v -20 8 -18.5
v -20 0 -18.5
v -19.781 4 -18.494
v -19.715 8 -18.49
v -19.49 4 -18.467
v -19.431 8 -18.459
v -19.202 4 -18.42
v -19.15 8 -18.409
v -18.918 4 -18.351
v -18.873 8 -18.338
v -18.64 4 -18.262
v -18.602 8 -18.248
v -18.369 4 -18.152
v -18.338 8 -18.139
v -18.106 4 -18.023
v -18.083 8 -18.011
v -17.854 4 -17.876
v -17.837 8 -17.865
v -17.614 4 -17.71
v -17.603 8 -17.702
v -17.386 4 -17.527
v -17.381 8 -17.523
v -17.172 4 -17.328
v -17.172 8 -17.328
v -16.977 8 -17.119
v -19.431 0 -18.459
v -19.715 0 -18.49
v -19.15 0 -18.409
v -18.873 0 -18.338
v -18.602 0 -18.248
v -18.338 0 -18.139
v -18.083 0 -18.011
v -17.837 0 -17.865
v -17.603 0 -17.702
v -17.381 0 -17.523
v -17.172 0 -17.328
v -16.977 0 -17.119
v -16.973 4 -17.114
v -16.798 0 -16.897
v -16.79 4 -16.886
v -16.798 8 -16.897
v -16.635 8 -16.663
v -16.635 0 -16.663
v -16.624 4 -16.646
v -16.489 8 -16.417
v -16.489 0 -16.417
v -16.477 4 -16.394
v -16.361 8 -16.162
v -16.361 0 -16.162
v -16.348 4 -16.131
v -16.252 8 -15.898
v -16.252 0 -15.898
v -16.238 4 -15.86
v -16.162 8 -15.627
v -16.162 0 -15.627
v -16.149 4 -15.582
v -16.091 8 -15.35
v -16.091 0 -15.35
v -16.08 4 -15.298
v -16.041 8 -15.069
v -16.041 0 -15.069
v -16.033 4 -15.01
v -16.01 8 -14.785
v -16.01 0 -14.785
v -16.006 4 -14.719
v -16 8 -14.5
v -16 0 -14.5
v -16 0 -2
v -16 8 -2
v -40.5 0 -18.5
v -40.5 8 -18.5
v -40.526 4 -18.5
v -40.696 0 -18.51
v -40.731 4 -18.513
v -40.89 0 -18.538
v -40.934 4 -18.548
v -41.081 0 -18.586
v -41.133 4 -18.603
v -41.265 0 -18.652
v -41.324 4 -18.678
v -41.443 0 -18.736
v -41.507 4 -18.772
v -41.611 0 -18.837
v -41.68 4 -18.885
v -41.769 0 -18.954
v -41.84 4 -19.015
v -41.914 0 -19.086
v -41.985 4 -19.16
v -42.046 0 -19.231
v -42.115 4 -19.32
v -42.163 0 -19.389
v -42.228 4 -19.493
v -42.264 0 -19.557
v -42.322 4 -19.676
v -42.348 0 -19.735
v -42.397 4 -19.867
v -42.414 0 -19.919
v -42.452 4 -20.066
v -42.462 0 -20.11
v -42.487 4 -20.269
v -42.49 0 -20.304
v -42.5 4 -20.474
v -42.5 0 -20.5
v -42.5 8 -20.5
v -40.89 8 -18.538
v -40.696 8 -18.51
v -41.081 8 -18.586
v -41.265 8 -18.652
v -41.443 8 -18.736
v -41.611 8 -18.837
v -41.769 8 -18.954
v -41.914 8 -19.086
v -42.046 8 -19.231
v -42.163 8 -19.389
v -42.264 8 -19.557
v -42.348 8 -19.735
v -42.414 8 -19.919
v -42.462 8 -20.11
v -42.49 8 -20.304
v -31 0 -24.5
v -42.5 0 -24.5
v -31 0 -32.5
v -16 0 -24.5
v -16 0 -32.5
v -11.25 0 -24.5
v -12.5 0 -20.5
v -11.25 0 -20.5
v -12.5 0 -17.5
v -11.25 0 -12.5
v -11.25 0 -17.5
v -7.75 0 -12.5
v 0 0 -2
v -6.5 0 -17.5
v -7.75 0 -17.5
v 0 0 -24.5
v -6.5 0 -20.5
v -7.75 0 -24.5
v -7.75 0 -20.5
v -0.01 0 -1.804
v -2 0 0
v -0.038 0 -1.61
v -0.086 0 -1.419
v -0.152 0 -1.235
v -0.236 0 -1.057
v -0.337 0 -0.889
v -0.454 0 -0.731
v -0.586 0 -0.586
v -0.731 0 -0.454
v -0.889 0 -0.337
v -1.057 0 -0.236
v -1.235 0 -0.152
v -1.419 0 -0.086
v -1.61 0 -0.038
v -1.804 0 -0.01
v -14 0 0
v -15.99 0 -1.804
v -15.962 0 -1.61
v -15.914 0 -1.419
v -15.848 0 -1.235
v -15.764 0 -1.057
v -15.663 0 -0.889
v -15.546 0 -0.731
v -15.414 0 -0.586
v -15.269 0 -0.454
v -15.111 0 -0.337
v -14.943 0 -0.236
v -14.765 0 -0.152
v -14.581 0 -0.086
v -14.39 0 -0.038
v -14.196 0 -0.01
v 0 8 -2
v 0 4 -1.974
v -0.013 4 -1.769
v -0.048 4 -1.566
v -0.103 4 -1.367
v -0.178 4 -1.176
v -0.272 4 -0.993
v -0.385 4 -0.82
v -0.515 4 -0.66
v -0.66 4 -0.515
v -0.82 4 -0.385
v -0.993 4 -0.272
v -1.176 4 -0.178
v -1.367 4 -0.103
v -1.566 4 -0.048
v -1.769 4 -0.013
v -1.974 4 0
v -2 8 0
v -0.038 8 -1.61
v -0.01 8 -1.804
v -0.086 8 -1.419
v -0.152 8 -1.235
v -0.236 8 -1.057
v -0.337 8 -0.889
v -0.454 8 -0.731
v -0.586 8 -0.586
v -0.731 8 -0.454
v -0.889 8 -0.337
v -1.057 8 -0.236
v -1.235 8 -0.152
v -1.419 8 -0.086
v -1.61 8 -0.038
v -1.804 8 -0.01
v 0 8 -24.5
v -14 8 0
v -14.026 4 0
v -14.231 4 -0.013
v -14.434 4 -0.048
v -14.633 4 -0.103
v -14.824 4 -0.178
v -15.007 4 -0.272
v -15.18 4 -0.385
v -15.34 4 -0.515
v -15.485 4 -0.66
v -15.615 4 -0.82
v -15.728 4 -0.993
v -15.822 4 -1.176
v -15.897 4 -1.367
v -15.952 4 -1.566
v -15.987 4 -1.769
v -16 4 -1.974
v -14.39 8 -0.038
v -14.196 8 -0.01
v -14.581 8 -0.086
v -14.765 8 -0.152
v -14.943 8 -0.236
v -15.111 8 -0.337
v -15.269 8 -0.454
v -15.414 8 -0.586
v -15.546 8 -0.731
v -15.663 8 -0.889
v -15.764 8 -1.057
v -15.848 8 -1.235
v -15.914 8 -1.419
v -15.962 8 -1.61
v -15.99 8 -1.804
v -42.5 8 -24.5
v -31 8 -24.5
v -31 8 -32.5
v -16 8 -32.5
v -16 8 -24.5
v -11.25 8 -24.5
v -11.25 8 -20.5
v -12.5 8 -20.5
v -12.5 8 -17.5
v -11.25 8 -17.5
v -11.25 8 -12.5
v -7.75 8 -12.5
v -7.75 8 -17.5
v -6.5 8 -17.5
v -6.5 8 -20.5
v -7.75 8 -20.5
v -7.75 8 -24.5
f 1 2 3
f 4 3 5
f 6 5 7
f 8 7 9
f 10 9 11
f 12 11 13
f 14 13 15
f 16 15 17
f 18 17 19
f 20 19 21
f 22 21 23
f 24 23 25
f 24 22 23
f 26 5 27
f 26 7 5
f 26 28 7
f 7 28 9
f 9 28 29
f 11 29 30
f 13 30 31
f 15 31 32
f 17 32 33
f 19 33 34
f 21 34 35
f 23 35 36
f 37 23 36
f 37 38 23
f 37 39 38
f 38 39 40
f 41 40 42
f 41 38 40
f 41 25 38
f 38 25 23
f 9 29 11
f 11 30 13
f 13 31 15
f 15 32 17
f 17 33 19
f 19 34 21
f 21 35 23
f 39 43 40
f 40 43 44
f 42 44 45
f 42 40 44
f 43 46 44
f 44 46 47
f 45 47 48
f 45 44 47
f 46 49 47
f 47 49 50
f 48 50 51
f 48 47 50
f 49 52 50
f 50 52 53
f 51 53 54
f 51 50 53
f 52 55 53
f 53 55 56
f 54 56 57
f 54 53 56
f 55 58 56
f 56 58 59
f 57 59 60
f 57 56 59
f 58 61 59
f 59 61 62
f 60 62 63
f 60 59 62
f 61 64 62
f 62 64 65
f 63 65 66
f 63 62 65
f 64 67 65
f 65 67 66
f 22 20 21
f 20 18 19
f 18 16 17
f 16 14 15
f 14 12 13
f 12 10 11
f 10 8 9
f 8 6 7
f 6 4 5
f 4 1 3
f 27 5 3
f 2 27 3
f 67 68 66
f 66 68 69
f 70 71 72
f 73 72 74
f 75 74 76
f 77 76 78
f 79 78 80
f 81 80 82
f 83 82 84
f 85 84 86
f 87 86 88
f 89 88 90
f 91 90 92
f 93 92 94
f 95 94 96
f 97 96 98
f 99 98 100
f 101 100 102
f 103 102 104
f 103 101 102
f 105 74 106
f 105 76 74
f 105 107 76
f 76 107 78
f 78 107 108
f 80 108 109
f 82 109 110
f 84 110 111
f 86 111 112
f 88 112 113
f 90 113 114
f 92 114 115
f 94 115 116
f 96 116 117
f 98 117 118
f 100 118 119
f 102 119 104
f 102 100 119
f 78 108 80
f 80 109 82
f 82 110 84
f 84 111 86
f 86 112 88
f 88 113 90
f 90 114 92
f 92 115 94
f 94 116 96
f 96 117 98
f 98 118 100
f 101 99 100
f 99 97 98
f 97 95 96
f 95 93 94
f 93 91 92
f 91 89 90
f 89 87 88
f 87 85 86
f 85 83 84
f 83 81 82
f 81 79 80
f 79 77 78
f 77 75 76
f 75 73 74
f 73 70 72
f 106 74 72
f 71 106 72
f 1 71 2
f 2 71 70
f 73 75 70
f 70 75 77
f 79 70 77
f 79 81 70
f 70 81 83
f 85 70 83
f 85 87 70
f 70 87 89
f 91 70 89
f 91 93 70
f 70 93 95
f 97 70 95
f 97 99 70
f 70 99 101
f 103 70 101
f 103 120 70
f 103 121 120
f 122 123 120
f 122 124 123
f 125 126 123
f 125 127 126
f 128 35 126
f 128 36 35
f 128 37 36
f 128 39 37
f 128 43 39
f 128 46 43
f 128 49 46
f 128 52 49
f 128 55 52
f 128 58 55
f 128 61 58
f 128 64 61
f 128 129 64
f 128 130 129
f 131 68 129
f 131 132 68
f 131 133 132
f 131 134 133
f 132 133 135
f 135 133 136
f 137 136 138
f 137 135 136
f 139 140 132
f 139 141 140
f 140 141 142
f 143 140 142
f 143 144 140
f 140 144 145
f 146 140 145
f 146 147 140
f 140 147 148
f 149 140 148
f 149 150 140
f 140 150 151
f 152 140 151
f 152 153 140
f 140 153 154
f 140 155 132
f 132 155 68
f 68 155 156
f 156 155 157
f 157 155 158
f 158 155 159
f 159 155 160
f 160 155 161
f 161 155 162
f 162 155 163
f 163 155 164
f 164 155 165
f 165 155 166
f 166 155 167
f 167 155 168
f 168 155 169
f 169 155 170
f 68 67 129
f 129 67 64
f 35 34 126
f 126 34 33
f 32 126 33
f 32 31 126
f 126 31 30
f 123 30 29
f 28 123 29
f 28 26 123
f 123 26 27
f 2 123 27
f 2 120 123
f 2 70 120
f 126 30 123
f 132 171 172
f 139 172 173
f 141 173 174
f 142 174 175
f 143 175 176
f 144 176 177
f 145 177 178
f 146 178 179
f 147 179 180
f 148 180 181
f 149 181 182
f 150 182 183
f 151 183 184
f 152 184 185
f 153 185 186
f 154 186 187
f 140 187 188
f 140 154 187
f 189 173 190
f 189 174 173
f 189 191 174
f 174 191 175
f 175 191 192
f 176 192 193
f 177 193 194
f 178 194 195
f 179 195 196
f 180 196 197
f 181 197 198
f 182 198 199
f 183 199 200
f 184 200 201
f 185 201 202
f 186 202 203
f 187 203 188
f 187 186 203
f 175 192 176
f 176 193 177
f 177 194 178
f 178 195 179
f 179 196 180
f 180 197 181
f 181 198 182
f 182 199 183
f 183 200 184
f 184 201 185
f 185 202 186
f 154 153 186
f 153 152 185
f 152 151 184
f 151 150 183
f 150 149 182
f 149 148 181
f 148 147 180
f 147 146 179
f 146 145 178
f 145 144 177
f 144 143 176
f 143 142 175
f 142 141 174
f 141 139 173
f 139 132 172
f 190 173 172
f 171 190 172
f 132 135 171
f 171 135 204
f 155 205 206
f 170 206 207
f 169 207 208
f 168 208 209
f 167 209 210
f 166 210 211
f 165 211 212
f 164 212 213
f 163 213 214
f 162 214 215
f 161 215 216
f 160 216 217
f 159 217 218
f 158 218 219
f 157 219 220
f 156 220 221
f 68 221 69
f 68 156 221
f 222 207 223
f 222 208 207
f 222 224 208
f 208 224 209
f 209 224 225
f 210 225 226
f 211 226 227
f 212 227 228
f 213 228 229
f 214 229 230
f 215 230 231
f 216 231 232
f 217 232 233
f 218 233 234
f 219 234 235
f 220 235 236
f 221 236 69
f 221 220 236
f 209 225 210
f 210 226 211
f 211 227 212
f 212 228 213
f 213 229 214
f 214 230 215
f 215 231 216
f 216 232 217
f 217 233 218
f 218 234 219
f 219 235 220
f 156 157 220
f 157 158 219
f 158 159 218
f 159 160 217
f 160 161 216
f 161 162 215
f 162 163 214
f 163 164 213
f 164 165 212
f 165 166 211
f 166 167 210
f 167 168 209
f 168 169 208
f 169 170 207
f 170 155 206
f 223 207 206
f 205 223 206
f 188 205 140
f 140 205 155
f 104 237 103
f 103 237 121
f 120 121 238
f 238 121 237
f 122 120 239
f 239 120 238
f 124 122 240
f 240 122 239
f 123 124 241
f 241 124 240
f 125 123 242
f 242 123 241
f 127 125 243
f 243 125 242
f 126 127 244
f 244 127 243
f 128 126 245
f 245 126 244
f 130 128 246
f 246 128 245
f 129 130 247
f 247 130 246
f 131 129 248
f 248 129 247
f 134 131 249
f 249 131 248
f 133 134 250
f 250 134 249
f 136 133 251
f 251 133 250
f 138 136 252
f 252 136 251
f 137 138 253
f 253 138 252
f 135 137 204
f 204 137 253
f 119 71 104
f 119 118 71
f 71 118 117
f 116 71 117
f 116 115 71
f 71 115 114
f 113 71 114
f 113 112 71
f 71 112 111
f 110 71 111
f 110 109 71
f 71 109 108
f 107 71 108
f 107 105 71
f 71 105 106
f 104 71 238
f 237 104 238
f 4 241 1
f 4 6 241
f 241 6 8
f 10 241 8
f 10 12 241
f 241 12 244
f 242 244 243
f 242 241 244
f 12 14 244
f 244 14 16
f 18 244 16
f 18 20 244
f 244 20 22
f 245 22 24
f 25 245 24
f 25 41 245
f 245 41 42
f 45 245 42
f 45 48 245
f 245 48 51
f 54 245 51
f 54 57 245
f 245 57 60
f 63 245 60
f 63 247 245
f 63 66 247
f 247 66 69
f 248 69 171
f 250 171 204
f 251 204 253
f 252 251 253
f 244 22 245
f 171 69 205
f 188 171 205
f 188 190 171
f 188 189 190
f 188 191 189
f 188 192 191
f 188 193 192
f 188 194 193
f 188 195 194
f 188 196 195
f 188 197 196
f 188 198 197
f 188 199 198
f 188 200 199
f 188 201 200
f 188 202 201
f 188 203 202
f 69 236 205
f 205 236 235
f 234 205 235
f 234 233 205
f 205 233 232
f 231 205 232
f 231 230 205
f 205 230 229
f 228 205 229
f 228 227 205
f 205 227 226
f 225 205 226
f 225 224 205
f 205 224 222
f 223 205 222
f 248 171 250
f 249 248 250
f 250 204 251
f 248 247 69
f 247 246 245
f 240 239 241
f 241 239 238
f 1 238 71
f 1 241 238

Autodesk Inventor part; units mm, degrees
ref_plane "YZ Plane" through (0, 0, 0) normal (1, 0, 0) x (0, 1, 0)
sketch "Sketch1" plane through (0, 0, 0) normal (0, 1, 0) x (-1, 0, 0)
  line L0 (0, 0) -> (16, 0)
  line L1 (16, 0) -> (16, -18.5)
  line L2 (0, -24.5) -> (0, 0)
  line L3 (0, -24.5) -> (16, -24.5)
  line L4 (11.25, -24.5) -> (11.25, -20.5)
  line L5 (11.25, -20.5) -> (12.5, -20.5)
  line L6 (12.5, -20.5) -> (12.5, -17.5)
  line L7 (12.5, -17.5) -> (11.25, -17.5)
  line L8 (11.25, -17.5) -> (11.25, -12.5)
  line L9 (11.25, -12.5) -> (7.75, -12.5)
  line L10 (7.75, -12.5) -> (7.75, -17.5)
  line L11 (7.75, -17.5) -> (6.5, -17.5)
  line L12 (6.5, -17.5) -> (6.5, -20.5)
  line L13 (6.5, -20.5) -> (7.75, -20.5)
  line L14 (7.75, -24.5) -> (7.75, -20.5)
  line L15 (16, -18.5) -> (42.5, -18.5)
  line L16 (42.5, -18.5) -> (42.5, -24.5)
  line L17 (42.5, -24.5) -> (31, -24.5)
  line L18 (31, -24.5) -> (31, -32.5)
  line L19 (31, -32.5) -> (16, -32.5)
  line L20 (16, -32.5) -> (16, -24.5)
  line L21 (9.5, -12.5) -> (9.5, -24.5) construction
  dimension "d0" = 24.5
  dimension "d1" = 16
  dimension "d4" = 3.5
  dimension "d5" = 6
  dimension "d6" = 4
  dimension "d7" = 3
  dimension "d8" = 5
  dimension "d23" = 7.75
  dimension "d24" = 6
  dimension "d25" = 14
  dimension "d26" = 42.5
  dimension "d27" = 11.5
  dimension "d28" = 15
  dimension "d29" = 32.5
extrude "Extrusion1" add sketch "Sketch1" along normal blind 8 contours L0 L1 L15 L16 L17 L18 L19 L20 L3 L4 L5 L6 L7 L8 L9 L10 L11 L12 L13 L14 L2
fillet "Fillet1" radius 2 3 edges at (-16, 4, 0) (0, 4, 0) (-42.5, 4, -18.5)
fillet "Fillet2" radius 4 1 edges at (-16, 4, -18.5)
ref_plane "Work Plane1" through (0, 4, 0) normal (0, 1, 0) x (-1, 0, 0)
ref_plane "Work Plane2" through (-9.5, 0, -12.5) normal (1, 0, 0) x (0, 0, -1)
equation "\"d31\" = 0.5 * THICKNESS"
equation "\"THICKNESS\" = 8"
properties part number "A8-0017"
